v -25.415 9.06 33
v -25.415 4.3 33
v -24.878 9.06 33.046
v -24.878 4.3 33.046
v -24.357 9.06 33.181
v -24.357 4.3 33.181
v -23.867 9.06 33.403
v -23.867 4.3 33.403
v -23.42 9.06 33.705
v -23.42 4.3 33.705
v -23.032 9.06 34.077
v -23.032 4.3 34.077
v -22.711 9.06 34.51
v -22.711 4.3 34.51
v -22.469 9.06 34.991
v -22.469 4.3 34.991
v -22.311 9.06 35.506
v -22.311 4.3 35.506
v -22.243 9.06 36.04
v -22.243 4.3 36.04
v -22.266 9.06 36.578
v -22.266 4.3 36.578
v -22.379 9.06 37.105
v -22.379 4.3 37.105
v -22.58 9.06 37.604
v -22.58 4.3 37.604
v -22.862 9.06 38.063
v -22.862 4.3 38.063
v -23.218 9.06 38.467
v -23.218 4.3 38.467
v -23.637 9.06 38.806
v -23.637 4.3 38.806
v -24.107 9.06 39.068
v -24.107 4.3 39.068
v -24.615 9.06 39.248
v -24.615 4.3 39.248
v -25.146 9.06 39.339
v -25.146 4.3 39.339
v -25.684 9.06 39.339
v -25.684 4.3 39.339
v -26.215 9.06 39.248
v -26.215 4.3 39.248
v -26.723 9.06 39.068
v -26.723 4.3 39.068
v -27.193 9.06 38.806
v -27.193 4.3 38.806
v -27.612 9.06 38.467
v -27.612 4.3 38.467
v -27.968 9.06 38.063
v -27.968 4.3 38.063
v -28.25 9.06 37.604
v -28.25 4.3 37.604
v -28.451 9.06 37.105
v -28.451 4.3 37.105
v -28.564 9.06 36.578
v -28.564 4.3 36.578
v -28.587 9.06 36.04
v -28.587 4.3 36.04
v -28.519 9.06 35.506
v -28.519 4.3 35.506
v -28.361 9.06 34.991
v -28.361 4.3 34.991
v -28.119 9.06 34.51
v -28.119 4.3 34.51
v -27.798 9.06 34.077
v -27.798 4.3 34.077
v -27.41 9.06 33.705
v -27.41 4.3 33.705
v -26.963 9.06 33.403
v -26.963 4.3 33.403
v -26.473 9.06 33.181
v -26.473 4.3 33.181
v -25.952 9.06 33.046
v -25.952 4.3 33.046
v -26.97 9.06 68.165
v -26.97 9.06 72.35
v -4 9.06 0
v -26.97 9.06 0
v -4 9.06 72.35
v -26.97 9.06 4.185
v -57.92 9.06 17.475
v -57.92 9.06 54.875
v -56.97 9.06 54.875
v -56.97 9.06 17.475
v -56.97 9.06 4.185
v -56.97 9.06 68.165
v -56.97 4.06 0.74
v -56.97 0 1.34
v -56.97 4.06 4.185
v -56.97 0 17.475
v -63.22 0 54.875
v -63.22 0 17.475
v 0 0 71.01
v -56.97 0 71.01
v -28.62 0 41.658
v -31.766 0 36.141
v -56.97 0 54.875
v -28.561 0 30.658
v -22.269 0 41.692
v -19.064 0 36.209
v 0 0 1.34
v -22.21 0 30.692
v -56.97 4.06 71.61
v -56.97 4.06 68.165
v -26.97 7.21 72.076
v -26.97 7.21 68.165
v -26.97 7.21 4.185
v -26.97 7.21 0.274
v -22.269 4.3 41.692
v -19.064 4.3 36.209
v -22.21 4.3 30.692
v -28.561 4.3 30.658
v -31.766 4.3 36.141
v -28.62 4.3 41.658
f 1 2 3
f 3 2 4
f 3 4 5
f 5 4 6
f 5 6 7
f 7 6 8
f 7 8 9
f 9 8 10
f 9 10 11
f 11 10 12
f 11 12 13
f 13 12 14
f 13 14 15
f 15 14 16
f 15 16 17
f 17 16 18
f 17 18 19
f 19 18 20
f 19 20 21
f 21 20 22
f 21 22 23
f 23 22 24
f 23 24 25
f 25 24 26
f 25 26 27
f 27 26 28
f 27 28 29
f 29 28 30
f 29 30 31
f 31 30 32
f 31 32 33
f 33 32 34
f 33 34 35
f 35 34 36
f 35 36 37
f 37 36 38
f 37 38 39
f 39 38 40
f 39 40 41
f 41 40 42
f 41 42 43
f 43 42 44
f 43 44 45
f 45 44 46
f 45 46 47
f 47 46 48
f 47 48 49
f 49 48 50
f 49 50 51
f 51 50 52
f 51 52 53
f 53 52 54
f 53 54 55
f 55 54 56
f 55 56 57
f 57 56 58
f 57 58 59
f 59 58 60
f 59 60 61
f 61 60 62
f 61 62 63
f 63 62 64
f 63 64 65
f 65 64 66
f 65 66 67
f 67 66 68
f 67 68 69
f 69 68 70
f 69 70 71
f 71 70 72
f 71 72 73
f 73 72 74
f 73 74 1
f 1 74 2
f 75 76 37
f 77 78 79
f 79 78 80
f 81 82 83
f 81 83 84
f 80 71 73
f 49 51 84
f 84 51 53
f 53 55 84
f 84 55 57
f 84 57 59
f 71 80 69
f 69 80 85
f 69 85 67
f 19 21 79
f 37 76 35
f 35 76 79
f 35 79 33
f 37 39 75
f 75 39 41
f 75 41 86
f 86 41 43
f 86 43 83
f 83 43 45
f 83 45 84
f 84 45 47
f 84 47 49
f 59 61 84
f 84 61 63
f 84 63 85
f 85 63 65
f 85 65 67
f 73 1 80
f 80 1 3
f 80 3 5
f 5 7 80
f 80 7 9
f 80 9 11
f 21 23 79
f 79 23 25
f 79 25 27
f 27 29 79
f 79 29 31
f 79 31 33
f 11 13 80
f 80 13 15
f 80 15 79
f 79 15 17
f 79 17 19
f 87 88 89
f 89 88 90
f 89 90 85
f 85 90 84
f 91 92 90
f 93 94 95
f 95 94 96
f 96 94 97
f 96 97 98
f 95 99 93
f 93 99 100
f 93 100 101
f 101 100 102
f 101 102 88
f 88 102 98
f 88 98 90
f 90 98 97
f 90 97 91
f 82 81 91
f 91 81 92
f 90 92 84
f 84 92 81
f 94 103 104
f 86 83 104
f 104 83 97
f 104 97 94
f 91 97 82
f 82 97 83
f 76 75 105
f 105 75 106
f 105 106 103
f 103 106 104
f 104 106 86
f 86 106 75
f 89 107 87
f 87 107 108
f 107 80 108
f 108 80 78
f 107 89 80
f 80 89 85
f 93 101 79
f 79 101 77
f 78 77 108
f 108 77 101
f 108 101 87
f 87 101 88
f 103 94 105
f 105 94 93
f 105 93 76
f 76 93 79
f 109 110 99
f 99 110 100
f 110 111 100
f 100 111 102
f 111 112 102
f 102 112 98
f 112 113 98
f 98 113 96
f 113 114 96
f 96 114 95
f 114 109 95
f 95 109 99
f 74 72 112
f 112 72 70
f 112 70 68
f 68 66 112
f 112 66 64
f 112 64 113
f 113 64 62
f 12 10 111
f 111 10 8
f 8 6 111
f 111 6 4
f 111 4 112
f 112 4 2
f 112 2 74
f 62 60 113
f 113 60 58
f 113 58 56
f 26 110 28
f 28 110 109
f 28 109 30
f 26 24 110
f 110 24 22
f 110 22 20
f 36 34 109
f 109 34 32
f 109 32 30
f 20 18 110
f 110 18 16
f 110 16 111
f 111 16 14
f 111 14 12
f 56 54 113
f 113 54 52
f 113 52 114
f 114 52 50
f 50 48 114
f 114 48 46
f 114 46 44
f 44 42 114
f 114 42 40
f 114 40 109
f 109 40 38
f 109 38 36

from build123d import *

# Parameters (mm, degrees)
SKETCH1_W           = 63.22
SKETCH1_H           = 72.35
BOSS_EXTRUDE1_DEPTH = 9.06
CUT_EXTRUDE1_REACH  = 98.506
CUT_EXTRUDE2_REACH  = 98.506
SKETCH3_W           = 6.25
SKETCH3_H           = 17.475
CUT_EXTRUDE3_DEPTH  = 4.185
CUT_EXTRUDE4_START  = -72.35
CUT_EXTRUDE4_DEPTH  = 4.185
CUT_EXTRUDE6_REACH  = 98.506
CUT_EXTRUDE7_REACH  = 94.532
CUT_EXTRUDE8_REACH  = 98.506
SKETCH9_R           = 3.175
SKETCH9_3_R         = 3.175
CUT_EXTRUDE9_DEPTH  = 4.3


with BuildPart() as part:
    # Sketch1 → Boss-Extrude1 (new body)
    with BuildSketch(Plane(origin=(0, 0, 0), x_dir=(1, 0, 0), z_dir=(0, 1, 0))):
        with Locations((-31.61, -36.175)):
            Rectangle(SKETCH1_W, SKETCH1_H)
    extrude(amount=BOSS_EXTRUDE1_DEPTH)

    # Sketch2 → Cut-Extrude1 (cut, up to next)
    with BuildSketch(Plane.XY.offset(72.35), mode=Mode.PRIVATE) as cut_extrude1_sk1:
        Polygon((-63.22, 9.06), (-57.92, 9.06), (-63.22, 0), align=None)
    cut_extrude1_tool1 = extrude(cut_extrude1_sk1.sketch, amount=-CUT_EXTRUDE1_REACH, mode=Mode.PRIVATE) & part.part
    add(cut_extrude1_tool1.solids().sort_by_distance((-61.453333, 6.04, 72.35))[0], mode=Mode.SUBTRACT)

    # Sketch3 → Cut-Extrude2 (cut, up to next)
    with BuildSketch(Plane.XZ, mode=Mode.PRIVATE) as cut_extrude2_sk1:
        with Locations((-60.095, 63.6125)):
            Rectangle(SKETCH3_W, SKETCH3_H)
    cut_extrude2_tool1 = extrude(cut_extrude2_sk1.sketch, amount=-CUT_EXTRUDE2_REACH, mode=Mode.PRIVATE) & part.part
    # Sketch3 → Cut-Extrude2 (cut, up to next)
    with BuildSketch(Plane.XZ, mode=Mode.PRIVATE) as cut_extrude2_sk2:
        with Locations((-60.095, 8.7375)):
            Rectangle(SKETCH3_W, SKETCH3_H)
    cut_extrude2_tool2 = extrude(cut_extrude2_sk2.sketch, amount=-CUT_EXTRUDE2_REACH, mode=Mode.PRIVATE) & part.part
    add(cut_extrude2_tool1.solids().sort_by_distance((-60.095, 0, 63.6125))[0], mode=Mode.SUBTRACT)
    add(cut_extrude2_tool2.solids().sort_by_distance((-60.095, 0, 8.7375))[0], mode=Mode.SUBTRACT)

    # Sketch4 → Cut-Extrude3 (cut)
    with BuildSketch(Plane.XY.offset(72.35)):
        Polygon((-56.97, 9.06), (-56.97, 4.06), (-26.97, 7.21), (-26.97, 9.06), align=None)
    extrude(amount=-CUT_EXTRUDE3_DEPTH, mode=Mode.SUBTRACT)

    # Sketch4<2> → Cut-Extrude4 (cut)
    with BuildSketch(Plane.XY.offset(72.35).offset(CUT_EXTRUDE4_START)):
        Polygon((-56.97, 9.06), (-56.97, 4.06), (-26.97, 7.21), (-26.97, 9.06), align=None)
    extrude(amount=CUT_EXTRUDE4_DEPTH, mode=Mode.SUBTRACT)

    # Sketch7 → Cut-Extrude6 (cut, up to next)
    with BuildSketch(Plane.XY.offset(72.35), mode=Mode.PRIVATE) as cut_extrude6_sk1:
        Polygon((0, 0), (-4, 9.06), (0, 9.06), align=None)
    cut_extrude6_tool1 = extrude(cut_extrude6_sk1.sketch, amount=-CUT_EXTRUDE6_REACH, mode=Mode.PRIVATE) & part.part
    add(cut_extrude6_tool1.solids().sort_by_distance((-1.333333, 6.04, 72.35))[0], mode=Mode.SUBTRACT)

    # Sketch8 → Cut-Extrude7 (cut, up to next)
    with BuildSketch(Plane.ZY.offset(56.97), mode=Mode.PRIVATE) as cut_extrude7_sk1:
        Polygon((72.35, 0), (71.01, 0), (72.35, 9.06), align=None)
    cut_extrude7_tool1 = extrude(cut_extrude7_sk1.sketch, amount=-CUT_EXTRUDE7_REACH, mode=Mode.PRIVATE) & part.part
    # Sketch8 → Cut-Extrude7 (cut, up to next)
    with BuildSketch(Plane.ZY.offset(56.97), mode=Mode.PRIVATE) as cut_extrude7_sk2:
        Polygon((0, 0), (1.34, 0), (0, 9.06), align=None)
    cut_extrude7_tool2 = extrude(cut_extrude7_sk2.sketch, amount=-CUT_EXTRUDE7_REACH, mode=Mode.PRIVATE) & part.part
    add(cut_extrude7_tool1.solids().sort_by_distance((-56.97, 3.02, 71.903333))[0], mode=Mode.SUBTRACT)
    add(cut_extrude7_tool2.solids().sort_by_distance((-56.97, 3.02, 0.446667))[0], mode=Mode.SUBTRACT)

    # Sketch9 → Cut-Extrude8 (cut, up to next)
    with BuildSketch(Plane.XZ, mode=Mode.PRIVATE) as cut_extrude8_sk1:
        with Locations(Location((-25.415, 36.175, 0), (0, 0, 270))):
            Circle(SKETCH9_R)
    cut_extrude8_tool1 = extrude(cut_extrude8_sk1.sketch, amount=-CUT_EXTRUDE8_REACH, mode=Mode.PRIVATE) & part.part
    add(cut_extrude8_tool1.solids().sort_by_distance((-25.415, 0, 36.175))[0], mode=Mode.SUBTRACT)

    # Sketch9<3> → Cut-Extrude9 (cut)
    with BuildSketch(Plane.XZ):
        Polygon((-22.269171962, 41.691982807), (-28.619933244, 41.6578584), (-31.765761282, 36.140875593), (-28.560828038, 30.658017193), (-22.210066756, 30.6921416), (-19.064238718, 36.209124407), align=None)
        with Locations(Location((-25.415, 36.175, 0), (0, 0, 270))):
            Circle(SKETCH9_3_R, mode=Mode.SUBTRACT)
    extrude(amount=-CUT_EXTRUDE9_DEPTH, mode=Mode.SUBTRACT)


solid = part.part
